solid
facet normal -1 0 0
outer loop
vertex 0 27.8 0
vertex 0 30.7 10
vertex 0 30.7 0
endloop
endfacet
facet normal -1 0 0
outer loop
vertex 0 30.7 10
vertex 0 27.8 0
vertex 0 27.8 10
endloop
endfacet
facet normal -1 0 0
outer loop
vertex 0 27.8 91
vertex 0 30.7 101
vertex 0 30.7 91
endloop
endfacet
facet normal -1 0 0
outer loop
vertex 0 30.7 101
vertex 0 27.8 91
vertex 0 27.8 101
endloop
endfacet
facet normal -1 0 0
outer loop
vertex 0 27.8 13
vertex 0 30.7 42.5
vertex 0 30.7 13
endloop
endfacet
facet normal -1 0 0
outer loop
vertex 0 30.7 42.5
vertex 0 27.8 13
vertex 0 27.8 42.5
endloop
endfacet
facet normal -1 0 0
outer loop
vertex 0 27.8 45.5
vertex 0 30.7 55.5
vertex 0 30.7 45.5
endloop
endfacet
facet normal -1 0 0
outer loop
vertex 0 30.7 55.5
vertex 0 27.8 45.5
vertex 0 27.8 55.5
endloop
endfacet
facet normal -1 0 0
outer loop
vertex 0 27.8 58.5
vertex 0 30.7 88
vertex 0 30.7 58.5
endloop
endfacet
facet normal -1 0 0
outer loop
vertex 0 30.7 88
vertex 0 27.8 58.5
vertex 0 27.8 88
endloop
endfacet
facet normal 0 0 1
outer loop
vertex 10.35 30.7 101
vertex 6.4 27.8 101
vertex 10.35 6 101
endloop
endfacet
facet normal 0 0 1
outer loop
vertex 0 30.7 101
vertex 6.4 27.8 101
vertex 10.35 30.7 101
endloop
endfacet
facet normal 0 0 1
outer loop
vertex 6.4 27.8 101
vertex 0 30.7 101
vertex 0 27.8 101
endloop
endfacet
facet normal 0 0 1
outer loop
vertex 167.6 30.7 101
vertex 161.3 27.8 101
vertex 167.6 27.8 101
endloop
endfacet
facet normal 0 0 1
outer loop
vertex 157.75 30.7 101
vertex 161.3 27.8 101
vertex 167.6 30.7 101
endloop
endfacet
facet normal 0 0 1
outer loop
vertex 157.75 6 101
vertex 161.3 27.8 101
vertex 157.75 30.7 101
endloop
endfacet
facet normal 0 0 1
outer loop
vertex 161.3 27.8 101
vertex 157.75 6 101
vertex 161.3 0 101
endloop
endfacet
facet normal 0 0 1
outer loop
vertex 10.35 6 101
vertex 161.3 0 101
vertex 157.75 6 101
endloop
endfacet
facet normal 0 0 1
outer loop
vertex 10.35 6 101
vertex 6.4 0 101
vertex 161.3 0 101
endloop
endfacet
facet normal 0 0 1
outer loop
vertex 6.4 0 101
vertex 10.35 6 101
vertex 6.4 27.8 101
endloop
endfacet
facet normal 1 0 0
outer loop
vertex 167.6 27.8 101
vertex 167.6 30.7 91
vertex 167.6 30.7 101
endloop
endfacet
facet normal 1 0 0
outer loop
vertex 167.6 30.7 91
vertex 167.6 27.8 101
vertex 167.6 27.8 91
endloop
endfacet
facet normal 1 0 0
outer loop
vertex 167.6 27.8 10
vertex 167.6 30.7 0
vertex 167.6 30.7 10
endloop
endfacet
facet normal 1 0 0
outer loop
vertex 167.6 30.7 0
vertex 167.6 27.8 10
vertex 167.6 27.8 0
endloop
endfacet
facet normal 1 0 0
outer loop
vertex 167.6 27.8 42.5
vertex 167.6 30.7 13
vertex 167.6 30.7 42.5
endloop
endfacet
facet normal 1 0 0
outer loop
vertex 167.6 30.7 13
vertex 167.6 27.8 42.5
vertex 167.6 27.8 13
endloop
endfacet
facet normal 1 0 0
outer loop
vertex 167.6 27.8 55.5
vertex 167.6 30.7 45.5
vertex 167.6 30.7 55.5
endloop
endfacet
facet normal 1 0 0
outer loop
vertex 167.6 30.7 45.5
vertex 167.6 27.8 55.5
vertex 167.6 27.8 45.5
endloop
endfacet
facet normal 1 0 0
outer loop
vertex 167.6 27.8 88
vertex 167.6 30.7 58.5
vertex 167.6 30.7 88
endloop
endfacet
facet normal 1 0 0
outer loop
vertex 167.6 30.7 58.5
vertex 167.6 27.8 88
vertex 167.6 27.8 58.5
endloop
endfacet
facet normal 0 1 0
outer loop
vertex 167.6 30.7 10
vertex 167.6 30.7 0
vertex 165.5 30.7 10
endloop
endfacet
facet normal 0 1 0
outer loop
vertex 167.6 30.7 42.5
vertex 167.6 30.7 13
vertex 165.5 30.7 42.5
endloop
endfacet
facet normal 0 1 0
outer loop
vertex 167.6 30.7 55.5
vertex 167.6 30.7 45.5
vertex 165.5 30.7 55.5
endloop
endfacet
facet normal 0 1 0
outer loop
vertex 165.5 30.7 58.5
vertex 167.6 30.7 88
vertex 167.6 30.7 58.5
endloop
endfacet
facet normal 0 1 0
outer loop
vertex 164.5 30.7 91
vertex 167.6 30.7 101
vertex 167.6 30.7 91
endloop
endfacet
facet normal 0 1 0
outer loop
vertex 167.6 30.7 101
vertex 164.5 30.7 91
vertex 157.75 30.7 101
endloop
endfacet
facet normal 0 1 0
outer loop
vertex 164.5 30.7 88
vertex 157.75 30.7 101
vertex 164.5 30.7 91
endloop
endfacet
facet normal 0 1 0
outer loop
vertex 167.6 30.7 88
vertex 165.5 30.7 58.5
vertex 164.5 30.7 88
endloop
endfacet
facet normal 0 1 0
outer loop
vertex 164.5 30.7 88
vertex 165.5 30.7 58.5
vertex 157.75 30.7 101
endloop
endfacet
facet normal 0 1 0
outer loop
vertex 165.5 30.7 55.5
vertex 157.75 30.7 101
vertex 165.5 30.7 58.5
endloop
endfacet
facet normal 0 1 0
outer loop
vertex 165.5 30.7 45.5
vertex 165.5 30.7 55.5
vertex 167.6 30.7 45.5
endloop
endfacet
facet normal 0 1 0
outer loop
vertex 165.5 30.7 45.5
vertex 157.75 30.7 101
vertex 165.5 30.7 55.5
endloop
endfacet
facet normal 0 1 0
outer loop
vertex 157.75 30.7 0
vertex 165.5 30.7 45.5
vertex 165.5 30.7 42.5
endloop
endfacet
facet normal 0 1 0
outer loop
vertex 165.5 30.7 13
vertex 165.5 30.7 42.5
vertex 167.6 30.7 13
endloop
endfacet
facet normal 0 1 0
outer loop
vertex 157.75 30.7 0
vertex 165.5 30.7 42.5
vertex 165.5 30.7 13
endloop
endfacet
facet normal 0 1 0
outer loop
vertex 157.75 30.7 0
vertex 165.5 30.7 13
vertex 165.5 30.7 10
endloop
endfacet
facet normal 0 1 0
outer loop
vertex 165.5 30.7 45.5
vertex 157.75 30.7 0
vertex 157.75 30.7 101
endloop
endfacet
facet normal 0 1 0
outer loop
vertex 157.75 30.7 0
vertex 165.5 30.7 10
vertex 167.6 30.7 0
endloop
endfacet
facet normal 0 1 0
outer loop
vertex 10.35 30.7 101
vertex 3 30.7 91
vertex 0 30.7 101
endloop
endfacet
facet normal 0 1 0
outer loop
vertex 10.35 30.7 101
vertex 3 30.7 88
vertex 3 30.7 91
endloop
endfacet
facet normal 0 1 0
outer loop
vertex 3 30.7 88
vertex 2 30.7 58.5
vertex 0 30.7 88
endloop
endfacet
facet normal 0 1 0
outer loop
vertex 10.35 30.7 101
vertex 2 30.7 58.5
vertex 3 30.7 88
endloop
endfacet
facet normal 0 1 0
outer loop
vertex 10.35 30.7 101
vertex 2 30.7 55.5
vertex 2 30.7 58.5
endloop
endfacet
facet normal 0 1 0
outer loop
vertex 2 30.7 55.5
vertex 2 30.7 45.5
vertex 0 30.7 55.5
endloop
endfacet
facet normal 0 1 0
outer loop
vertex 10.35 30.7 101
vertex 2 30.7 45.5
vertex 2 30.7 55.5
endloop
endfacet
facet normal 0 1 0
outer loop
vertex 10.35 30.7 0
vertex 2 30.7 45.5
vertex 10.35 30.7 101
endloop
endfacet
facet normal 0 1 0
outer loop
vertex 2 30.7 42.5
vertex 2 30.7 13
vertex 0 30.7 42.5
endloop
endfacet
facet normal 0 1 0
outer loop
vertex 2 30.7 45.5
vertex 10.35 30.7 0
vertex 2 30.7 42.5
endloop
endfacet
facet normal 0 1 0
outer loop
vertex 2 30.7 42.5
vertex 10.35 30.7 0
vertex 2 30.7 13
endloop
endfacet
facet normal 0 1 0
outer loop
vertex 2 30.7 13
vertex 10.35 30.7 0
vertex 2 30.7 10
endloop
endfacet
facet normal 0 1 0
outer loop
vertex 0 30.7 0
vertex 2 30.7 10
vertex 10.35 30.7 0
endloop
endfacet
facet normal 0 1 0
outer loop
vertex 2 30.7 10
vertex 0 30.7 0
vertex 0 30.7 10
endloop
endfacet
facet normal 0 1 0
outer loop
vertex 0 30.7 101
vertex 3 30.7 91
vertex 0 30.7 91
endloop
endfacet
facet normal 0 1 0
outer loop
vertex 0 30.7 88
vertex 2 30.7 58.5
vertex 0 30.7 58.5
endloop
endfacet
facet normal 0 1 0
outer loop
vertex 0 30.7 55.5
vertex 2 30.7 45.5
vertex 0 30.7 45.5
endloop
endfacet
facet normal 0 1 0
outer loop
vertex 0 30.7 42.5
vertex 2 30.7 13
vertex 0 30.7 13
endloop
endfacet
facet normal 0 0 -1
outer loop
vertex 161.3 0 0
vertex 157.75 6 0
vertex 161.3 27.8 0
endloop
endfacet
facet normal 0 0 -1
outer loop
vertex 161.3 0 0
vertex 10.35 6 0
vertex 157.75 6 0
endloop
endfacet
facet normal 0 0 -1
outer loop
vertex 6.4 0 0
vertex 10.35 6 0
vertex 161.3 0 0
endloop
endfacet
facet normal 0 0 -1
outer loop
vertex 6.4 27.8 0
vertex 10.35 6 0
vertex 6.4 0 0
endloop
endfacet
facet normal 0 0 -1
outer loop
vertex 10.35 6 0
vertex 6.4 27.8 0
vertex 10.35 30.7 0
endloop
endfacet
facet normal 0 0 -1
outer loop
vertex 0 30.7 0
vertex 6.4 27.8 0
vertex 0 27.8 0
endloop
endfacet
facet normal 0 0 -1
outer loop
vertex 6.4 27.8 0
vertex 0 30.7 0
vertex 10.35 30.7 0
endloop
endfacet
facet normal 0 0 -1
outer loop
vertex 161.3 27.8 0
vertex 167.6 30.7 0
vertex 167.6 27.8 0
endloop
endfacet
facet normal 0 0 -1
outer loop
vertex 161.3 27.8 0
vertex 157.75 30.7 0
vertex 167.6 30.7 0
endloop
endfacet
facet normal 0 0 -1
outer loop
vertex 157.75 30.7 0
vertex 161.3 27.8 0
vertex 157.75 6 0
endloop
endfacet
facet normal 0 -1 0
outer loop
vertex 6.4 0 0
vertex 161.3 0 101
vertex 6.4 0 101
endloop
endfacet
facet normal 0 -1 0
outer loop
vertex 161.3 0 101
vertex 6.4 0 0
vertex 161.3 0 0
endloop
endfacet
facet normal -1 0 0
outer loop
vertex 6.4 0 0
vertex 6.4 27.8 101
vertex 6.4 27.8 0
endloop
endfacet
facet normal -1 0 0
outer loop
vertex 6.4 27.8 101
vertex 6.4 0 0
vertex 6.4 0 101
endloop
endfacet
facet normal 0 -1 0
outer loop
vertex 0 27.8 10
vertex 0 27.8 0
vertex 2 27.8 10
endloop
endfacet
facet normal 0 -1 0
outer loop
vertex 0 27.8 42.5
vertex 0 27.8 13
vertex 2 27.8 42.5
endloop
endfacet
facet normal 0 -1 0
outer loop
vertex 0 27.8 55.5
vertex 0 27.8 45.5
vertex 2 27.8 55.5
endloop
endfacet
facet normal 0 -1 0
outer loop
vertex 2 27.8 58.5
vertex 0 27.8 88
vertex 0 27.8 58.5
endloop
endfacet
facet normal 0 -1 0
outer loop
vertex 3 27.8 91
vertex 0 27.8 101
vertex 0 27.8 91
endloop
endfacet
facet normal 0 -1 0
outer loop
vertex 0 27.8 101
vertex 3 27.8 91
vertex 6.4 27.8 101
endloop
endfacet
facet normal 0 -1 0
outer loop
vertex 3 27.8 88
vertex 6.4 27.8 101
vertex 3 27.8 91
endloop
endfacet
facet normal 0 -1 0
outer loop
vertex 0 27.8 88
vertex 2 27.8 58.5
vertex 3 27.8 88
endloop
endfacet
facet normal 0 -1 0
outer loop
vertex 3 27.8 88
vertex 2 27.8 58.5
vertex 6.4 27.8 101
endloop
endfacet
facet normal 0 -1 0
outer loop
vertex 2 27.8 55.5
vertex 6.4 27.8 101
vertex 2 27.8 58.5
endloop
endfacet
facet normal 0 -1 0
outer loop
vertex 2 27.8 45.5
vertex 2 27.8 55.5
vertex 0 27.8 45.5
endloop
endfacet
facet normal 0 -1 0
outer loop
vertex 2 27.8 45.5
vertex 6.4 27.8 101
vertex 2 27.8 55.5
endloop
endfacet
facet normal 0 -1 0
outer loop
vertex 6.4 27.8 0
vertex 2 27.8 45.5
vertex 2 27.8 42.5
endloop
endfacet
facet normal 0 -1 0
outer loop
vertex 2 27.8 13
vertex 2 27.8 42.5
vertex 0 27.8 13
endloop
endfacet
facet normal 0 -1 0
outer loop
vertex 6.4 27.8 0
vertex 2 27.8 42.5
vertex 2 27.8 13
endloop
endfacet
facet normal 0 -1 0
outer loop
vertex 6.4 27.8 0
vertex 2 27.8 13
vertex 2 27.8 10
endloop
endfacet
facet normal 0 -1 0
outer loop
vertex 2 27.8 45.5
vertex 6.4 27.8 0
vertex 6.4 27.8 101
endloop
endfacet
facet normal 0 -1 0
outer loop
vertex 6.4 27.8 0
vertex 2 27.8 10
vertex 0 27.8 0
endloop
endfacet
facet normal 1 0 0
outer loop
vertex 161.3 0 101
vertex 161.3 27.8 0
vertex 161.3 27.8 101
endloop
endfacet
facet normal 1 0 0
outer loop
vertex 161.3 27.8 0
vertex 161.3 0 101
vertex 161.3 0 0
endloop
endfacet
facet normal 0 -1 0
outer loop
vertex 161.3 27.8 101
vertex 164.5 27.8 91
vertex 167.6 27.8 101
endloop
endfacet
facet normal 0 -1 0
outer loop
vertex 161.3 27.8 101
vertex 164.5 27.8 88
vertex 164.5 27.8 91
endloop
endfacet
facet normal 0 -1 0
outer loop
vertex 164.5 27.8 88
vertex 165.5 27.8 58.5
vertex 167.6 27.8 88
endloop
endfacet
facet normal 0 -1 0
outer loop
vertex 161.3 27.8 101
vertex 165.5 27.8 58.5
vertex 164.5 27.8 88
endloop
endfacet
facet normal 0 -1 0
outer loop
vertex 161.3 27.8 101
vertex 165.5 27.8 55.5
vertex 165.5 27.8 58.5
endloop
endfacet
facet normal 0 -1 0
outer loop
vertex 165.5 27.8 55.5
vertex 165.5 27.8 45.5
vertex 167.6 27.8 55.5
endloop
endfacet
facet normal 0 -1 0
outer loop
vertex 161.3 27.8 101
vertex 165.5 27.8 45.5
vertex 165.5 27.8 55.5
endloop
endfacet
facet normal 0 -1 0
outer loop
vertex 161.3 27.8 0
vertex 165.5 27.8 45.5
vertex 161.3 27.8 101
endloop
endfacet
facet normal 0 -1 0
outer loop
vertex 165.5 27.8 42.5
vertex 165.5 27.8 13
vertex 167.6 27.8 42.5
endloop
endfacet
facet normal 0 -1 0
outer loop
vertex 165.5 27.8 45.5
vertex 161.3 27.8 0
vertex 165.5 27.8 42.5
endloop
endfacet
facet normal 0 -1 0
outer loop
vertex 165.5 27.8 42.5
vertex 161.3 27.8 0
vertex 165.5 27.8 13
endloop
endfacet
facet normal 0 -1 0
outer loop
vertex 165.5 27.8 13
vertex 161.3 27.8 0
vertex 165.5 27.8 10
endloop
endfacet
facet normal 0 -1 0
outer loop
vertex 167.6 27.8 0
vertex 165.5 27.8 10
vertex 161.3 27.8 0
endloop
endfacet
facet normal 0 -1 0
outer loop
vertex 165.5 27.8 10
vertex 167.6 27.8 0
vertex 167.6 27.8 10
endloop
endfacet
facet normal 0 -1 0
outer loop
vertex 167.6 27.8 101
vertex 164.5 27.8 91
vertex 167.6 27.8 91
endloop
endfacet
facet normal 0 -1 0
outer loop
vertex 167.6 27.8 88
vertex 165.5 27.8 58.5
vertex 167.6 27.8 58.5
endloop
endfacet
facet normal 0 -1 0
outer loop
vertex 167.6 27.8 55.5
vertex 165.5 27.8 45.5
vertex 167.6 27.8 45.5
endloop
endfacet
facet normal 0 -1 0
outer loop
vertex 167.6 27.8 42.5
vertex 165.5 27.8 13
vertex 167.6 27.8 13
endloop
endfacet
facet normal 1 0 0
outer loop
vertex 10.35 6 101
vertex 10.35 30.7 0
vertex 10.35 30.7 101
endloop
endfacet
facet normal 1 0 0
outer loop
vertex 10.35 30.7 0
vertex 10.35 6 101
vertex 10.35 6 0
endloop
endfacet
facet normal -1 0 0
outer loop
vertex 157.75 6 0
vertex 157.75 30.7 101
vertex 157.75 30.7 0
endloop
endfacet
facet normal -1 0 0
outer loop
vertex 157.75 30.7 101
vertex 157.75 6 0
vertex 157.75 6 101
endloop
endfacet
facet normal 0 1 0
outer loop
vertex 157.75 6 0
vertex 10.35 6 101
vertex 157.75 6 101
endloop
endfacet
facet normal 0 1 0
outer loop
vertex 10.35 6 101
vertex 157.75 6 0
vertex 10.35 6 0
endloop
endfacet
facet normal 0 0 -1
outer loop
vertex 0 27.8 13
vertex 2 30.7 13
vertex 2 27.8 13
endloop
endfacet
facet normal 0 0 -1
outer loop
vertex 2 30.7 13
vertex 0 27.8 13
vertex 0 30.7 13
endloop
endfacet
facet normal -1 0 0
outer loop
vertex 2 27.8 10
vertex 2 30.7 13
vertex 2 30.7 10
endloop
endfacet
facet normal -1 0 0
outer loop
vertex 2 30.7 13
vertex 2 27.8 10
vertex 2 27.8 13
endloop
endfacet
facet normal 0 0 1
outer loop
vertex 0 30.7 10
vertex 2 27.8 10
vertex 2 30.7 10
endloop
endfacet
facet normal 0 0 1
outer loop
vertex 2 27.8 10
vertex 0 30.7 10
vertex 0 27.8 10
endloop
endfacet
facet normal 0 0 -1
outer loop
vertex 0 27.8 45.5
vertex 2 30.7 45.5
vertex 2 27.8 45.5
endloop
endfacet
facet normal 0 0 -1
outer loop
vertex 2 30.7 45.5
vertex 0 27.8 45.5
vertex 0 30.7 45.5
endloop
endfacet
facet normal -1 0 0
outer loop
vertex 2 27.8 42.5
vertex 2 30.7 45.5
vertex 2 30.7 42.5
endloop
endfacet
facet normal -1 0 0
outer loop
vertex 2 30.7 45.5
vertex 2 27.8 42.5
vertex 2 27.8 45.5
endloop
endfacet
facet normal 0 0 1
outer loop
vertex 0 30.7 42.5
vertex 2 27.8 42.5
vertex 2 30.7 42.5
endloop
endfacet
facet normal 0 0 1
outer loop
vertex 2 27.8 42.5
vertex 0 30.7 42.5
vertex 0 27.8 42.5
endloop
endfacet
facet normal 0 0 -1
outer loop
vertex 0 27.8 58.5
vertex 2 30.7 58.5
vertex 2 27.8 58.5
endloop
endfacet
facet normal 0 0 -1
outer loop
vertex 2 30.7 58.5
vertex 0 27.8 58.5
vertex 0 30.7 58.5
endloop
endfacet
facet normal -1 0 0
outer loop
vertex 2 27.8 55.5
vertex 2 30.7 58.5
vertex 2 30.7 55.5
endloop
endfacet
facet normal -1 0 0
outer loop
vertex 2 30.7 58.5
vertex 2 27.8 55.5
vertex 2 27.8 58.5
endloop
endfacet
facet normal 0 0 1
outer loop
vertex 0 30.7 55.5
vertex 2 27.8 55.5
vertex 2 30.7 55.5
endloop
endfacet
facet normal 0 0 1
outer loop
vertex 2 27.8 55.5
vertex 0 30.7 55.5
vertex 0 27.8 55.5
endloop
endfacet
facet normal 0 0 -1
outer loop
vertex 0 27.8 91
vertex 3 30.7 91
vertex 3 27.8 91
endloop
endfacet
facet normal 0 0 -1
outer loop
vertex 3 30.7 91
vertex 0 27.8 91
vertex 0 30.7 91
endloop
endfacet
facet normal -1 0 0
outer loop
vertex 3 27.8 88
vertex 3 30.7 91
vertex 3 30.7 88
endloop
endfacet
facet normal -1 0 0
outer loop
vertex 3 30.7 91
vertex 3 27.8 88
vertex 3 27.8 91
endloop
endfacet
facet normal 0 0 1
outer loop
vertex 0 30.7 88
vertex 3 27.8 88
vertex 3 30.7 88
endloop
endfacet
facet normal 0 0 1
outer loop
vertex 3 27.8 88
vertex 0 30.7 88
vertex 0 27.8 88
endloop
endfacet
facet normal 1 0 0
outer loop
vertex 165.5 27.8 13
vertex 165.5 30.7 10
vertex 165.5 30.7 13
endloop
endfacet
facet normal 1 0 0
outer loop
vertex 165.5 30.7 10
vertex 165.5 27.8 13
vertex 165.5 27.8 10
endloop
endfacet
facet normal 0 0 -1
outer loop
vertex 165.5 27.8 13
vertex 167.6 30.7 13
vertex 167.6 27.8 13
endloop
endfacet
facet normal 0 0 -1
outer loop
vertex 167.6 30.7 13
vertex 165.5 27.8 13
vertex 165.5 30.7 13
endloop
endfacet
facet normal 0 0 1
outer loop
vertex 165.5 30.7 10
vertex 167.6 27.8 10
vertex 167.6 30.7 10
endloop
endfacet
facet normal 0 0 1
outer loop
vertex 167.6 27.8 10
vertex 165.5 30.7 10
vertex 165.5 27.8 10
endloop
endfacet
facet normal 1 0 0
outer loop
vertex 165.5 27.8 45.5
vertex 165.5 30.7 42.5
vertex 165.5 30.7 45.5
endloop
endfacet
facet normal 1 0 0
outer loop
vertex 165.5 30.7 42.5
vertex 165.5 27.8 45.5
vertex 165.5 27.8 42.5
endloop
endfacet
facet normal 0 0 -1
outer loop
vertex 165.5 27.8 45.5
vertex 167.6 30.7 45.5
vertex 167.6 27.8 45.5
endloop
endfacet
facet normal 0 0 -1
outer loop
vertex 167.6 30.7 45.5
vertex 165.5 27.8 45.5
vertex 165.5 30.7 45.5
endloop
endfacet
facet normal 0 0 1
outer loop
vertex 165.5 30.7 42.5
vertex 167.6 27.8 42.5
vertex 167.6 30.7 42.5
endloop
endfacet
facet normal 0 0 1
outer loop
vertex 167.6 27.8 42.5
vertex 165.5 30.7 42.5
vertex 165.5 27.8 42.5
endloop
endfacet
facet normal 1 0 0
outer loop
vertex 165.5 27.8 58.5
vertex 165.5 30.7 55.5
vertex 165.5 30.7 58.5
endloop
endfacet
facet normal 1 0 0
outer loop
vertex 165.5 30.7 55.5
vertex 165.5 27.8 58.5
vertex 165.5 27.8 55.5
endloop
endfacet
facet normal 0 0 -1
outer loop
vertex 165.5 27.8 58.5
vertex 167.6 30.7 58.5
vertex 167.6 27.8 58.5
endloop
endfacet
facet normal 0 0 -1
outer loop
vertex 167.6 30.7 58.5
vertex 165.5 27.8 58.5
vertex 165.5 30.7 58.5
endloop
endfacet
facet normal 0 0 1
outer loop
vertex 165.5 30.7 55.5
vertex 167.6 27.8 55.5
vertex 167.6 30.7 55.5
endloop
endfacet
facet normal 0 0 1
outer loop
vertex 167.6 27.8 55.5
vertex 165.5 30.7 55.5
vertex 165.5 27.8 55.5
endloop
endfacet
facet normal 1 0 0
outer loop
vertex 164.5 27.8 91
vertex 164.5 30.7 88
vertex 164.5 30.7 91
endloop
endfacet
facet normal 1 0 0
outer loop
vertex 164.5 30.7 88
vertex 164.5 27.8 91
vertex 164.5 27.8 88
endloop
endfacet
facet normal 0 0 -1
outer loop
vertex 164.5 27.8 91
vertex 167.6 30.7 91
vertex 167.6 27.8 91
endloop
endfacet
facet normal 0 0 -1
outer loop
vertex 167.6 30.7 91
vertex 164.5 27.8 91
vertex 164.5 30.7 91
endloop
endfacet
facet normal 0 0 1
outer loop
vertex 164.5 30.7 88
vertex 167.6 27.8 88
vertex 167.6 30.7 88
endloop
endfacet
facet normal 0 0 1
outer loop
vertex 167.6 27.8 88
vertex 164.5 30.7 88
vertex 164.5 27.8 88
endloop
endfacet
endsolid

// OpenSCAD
h1=101;

//color("blue",1)translate([0,0,-10])import("Jon_model.STL",centre=TRUE);

difference()
{
cube([167.6,30.7,h1]);
cube([6.4,27.8,h1]);    
translate([167.6-6.3,0,0])cube([6.4,27.8,h1]);    
translate([10.35,6,0])cube([147.4,27.8,h1+3]);    
cube(3,5,3);
translate([0,27,10])cube([2,7,3]);
translate([0,27,42.5])cube([2,7,3]);
translate([0,27,55.5])cube([2,7,3]);
translate([0,27,88])cube([3,7,3]);
translate([165.5,27,10])cube([2.5,7,3]);
translate([165.5,27,42.5])cube([2.5,7,3]);
translate([165.5,27,55.5])cube([2.5,7,3]);
translate([164.5,27,88])cube([3.5,7,3]);
}
